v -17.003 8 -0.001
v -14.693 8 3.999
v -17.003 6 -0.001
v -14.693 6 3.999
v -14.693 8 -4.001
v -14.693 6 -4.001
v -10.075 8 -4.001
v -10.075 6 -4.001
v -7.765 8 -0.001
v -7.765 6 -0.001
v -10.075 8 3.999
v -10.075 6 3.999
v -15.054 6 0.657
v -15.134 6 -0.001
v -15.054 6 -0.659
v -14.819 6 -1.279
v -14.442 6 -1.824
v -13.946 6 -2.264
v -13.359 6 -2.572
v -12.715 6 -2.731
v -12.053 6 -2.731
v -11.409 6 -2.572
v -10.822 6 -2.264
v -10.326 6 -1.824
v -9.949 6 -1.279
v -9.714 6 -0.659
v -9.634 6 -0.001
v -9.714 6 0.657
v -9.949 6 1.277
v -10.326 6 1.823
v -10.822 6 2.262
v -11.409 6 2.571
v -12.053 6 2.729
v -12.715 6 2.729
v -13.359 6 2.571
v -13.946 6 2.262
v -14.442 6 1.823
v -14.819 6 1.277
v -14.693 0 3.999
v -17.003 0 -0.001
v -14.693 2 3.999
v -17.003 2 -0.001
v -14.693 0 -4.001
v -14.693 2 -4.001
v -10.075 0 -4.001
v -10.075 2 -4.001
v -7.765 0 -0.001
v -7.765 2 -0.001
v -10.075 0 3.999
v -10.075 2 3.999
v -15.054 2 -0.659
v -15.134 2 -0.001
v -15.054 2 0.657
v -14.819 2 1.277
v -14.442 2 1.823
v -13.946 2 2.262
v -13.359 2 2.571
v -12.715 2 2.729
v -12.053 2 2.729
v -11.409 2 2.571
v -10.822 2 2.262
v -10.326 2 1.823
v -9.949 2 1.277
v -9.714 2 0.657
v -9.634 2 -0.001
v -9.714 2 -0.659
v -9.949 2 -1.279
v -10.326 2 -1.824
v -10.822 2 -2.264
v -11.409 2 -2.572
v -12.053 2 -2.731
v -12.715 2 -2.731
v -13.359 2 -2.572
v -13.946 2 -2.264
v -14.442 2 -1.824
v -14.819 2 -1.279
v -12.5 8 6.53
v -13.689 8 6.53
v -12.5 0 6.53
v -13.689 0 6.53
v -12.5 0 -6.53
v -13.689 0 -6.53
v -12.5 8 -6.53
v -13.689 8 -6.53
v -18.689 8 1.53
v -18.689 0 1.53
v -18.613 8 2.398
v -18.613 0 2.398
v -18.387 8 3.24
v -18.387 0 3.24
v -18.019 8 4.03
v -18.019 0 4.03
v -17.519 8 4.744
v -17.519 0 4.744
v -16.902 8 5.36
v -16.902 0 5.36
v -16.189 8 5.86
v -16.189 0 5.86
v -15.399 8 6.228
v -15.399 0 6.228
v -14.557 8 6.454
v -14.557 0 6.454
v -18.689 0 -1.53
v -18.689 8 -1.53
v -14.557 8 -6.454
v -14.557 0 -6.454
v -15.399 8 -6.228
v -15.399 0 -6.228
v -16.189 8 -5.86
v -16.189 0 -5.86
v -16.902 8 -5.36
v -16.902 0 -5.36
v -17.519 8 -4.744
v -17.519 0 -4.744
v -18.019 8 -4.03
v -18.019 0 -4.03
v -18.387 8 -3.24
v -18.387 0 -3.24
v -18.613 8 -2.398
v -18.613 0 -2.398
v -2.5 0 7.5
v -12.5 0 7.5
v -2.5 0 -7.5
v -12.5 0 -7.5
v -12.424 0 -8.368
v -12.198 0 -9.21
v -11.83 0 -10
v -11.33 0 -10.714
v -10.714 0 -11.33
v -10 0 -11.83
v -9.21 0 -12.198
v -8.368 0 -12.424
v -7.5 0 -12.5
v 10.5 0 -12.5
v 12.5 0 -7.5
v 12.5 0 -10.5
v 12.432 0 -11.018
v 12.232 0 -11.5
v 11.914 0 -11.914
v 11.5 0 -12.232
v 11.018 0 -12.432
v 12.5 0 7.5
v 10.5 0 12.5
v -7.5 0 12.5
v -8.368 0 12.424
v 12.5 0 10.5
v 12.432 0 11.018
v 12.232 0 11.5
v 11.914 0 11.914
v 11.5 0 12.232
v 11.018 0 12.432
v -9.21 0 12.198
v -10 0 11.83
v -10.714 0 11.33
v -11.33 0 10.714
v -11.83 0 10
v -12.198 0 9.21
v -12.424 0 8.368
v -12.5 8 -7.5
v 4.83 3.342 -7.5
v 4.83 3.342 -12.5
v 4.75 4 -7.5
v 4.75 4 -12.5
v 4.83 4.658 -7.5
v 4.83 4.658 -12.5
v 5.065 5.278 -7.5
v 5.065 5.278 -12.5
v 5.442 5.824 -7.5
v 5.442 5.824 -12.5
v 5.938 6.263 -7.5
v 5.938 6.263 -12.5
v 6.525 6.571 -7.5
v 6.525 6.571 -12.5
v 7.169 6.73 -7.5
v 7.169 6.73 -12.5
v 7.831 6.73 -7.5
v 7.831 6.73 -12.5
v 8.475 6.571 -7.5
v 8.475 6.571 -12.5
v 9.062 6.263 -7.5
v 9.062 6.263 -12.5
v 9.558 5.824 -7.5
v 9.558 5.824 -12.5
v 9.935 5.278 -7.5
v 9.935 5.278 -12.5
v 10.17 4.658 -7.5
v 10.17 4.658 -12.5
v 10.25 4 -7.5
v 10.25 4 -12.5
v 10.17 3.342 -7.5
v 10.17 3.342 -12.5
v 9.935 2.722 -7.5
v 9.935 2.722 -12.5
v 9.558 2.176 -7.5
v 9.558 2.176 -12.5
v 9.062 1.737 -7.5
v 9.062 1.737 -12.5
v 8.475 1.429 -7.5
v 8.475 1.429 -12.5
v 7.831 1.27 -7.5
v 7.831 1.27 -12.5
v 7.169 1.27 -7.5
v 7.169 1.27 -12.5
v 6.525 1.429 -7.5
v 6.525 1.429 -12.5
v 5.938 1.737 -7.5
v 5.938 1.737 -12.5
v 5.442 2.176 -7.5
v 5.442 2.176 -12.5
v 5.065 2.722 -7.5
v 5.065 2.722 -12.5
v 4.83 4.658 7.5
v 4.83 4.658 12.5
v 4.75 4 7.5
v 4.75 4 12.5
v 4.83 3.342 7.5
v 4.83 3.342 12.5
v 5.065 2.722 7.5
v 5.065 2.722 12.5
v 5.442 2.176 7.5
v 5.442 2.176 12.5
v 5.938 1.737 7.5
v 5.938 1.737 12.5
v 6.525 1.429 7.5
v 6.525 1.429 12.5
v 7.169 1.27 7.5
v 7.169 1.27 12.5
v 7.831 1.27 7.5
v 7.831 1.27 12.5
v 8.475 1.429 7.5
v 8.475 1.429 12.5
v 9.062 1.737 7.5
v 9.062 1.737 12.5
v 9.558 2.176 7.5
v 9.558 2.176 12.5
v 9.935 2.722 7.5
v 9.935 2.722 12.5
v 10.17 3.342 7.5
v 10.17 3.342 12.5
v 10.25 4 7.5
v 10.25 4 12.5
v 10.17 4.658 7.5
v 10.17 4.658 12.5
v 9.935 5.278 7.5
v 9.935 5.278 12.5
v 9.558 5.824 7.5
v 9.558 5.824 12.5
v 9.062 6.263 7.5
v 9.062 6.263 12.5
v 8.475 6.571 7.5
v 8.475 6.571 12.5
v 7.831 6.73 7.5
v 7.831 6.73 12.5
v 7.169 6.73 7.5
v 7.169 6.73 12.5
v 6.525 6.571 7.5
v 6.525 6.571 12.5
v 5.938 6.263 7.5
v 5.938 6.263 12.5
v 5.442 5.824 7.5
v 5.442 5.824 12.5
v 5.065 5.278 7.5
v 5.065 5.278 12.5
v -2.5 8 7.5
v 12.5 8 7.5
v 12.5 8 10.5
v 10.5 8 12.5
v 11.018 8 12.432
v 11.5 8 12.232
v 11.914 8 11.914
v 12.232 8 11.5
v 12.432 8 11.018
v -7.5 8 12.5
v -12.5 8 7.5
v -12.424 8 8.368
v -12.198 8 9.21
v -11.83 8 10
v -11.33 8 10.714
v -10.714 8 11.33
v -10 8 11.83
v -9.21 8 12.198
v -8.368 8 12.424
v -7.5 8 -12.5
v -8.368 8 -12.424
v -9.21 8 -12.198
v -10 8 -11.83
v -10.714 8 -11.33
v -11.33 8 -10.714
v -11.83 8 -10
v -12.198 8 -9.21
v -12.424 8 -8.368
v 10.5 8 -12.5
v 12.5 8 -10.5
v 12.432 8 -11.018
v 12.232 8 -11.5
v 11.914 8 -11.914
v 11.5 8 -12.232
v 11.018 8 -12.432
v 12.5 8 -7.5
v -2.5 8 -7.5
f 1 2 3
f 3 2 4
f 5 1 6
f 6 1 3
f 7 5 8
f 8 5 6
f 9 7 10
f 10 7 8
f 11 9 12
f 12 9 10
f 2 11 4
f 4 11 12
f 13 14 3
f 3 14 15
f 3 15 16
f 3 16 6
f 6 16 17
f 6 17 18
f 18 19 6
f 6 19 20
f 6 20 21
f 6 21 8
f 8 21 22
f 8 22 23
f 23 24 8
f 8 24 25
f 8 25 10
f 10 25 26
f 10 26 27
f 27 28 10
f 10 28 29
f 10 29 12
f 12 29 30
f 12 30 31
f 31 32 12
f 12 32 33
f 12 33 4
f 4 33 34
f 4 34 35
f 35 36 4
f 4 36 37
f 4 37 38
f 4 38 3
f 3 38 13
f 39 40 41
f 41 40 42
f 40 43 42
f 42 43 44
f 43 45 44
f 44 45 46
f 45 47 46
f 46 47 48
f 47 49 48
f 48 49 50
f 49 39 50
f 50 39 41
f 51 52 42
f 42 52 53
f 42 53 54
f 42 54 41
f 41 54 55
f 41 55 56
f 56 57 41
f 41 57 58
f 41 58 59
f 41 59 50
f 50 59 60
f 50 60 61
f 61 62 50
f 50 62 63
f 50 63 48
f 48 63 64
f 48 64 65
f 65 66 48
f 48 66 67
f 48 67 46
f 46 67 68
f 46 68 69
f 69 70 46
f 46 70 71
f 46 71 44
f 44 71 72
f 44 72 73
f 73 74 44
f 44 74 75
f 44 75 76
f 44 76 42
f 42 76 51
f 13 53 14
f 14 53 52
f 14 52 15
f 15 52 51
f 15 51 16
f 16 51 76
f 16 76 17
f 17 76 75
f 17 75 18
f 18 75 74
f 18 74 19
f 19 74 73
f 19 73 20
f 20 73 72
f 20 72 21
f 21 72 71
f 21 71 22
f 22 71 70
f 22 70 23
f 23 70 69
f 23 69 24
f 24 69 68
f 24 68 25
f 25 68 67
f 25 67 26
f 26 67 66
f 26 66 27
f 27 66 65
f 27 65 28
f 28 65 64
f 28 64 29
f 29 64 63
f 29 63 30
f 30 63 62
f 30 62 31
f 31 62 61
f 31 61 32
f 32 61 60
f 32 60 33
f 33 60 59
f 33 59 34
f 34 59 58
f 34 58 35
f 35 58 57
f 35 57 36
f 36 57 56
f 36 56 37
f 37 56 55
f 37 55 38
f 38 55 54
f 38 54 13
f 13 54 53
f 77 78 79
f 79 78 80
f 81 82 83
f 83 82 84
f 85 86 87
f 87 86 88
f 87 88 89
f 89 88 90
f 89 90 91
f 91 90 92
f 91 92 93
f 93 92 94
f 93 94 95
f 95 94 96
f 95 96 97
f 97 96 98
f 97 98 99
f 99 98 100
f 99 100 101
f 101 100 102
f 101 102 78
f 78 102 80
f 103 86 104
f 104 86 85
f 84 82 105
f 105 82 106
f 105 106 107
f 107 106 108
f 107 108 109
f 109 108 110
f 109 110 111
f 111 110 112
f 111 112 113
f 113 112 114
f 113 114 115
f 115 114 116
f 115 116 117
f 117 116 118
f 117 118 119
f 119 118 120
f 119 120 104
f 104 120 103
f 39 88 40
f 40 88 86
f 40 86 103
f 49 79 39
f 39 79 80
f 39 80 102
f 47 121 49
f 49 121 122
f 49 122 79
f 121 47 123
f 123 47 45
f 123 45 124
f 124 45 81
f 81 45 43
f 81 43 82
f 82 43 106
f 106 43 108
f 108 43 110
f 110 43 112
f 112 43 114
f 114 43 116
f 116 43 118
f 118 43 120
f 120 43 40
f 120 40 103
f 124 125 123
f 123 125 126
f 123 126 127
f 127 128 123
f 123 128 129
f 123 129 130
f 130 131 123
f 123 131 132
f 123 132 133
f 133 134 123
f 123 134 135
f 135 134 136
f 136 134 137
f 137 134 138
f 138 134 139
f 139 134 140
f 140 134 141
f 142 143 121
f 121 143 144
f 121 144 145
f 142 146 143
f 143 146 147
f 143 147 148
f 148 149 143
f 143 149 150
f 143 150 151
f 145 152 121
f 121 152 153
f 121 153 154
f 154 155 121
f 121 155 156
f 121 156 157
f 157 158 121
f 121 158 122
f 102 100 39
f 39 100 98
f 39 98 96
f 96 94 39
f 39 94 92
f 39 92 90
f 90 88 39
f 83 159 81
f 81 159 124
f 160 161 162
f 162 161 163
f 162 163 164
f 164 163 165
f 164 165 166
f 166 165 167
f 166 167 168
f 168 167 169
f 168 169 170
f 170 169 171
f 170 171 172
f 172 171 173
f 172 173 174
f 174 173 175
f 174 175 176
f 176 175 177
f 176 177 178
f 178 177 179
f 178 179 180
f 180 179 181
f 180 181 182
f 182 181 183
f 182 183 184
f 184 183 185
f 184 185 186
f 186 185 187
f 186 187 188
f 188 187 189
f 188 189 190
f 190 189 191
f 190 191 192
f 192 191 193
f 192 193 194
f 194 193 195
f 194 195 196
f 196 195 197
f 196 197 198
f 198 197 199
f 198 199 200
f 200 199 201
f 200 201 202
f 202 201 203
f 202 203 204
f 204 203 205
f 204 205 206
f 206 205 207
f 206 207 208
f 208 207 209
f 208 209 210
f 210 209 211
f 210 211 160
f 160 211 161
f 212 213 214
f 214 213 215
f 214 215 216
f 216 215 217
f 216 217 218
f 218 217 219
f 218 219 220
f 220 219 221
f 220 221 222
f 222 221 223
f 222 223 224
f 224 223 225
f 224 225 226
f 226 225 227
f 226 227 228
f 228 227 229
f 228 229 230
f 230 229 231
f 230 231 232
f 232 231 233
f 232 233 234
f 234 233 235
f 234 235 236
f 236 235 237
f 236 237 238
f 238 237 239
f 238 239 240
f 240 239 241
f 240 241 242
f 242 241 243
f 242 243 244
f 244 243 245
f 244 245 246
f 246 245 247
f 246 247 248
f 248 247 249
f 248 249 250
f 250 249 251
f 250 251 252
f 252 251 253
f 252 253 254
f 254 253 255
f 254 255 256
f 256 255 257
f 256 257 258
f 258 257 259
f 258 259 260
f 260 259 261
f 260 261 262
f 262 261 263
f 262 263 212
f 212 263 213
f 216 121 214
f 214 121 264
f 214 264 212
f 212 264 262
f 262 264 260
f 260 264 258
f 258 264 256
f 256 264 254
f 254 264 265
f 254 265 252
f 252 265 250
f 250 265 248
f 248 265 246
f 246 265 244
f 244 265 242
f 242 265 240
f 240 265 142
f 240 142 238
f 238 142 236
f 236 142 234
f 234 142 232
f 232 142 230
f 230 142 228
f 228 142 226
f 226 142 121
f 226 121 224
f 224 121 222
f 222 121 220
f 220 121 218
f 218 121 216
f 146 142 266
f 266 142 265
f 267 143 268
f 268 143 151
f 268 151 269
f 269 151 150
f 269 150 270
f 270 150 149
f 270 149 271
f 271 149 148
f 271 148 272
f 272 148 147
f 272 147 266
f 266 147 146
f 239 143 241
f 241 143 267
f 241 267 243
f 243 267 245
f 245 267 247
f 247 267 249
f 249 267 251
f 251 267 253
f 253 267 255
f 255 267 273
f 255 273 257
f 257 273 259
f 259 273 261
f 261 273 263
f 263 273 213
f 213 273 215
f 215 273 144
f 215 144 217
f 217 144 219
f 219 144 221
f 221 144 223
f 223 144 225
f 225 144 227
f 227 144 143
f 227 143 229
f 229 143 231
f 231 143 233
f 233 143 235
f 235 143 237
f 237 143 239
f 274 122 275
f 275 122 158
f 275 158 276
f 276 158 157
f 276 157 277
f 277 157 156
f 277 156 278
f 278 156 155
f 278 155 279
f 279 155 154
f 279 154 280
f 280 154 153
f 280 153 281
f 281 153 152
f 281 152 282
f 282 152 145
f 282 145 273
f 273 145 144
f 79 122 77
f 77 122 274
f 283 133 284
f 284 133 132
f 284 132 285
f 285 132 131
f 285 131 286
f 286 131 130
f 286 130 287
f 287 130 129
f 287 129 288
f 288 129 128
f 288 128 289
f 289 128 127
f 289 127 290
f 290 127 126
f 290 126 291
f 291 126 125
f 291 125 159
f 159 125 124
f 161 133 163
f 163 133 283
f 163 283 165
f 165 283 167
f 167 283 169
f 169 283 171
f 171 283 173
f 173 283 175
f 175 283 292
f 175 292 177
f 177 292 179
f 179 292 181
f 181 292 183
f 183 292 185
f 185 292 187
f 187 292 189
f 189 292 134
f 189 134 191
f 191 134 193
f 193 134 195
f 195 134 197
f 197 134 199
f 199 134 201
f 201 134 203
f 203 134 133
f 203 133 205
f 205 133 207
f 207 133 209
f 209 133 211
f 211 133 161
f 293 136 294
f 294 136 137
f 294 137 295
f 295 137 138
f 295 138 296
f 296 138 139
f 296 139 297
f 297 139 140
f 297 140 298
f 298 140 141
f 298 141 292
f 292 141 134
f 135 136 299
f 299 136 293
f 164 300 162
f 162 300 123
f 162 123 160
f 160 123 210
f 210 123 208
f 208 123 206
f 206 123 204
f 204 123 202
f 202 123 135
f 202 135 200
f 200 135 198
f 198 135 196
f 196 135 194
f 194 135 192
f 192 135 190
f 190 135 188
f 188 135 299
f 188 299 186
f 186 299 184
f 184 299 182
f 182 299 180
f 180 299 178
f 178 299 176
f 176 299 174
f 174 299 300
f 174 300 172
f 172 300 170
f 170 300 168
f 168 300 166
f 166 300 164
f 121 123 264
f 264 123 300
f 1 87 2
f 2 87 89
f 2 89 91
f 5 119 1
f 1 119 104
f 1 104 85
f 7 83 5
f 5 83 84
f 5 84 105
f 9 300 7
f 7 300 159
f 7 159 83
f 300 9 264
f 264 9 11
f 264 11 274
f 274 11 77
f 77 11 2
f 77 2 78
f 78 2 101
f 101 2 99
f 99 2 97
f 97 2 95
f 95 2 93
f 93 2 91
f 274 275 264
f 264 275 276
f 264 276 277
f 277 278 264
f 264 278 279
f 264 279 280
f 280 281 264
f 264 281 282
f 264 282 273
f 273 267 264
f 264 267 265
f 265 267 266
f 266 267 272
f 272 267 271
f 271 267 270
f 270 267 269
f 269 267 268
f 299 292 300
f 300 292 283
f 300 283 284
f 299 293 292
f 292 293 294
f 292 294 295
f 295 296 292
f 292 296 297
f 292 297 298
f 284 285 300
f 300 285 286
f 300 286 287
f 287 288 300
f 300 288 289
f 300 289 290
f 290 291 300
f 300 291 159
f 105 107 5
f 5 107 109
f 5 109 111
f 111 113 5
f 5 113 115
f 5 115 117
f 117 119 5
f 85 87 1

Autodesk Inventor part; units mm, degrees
ref_plane "YZ Plane" through (0, 0, 0) normal (1, 0, 0) x (0, 1, 0)
ref_plane "XZ Plane" through (0, 0, 0) normal (0, 1, 0) x (-1, 0, 0)
ref_plane "XY Plane" through (0, 0, 0) normal (0, 0, 1) x (1, 0, 0)
sketch "Sketch1" plane through (0, 0, 0) normal (0, 1, 0) x (-1, 0, 0)
  line L0 (-10.5, 12.5) -> (7.5, 12.5)
  line L1 (12.5, 7.5) -> (12.5, -7.5)
  line L2 (7.5, -12.5) -> (-10.5, -12.5)
  line L3 (-12.5, 12.5) -> (12.5, -12.5) construction
  line L4 (12.5, 12.5) -> (-12.5, -12.5) construction
  line L5 (2.5, -7.5) -> (-12.5, -7.5)
  line L6 (-12.5, 7.5) -> (2.5, 7.5)
  line L7 (2.5, 7.5) -> (2.5, -7.5)
  line L8 (2.5, -7.5) -> (-8.1051, -8.1051) construction
  line L9 (1.2546, -1.2546) -> (2.5, 7.5) construction
  line L10 (-12.5, -10.5) -> (-12.5, -7.5)
  line L11 (-12.5, 7.5) -> (-12.5, 10.5)
  arc A0 (12.5, 7.5) -> (7.5, 12.5) centre (7.5, 7.5) ccw
  arc A1 (7.5, -12.5) -> (12.5, -7.5) centre (7.5, -7.5) ccw
  arc A2 (-10.5, 12.5) -> (-12.5, 10.5) centre (-10.5, 10.5) ccw
  arc A3 (-12.5, -10.5) -> (-10.5, -12.5) centre (-10.5, -10.5) ccw
  point P0 (0, 0)
  point P1 (-12.5, -9)
  dimension "d0" = 5
  dimension "d1" = 2
  dimension "d2" = 15
  dimension "d3" = 25
  dimension "d7" = 15
  dimension "d8" = 25
extrude "Extrusion1" add sketch "Sketch1" along normal blind 8
sketch "Sketch2" plane through (-7.5, 0, 12.5) normal (0, 0, 1) x (1, 0, 0)
  circle A0 centre (15, 4) radius 2.75
  line L0 (0, 8) -> (18, 8) projected
  line L1 (18, 0) -> (18, 8) projected
  point P0 (7.5, 0)
  dimension "d9" = 5.5
  dimension "d10" = 4
  dimension "d26" = 3
extrude "Extrusion2" cut sketch "Sketch2" against normal blind 44.5
sketch "Sketch4" plane through (0, 0, 0) normal (0, -1, 0) x (1, 0, 0)
  line L0 (-13.6886, 6.5298) -> (-6.3114, 6.5298)
  line L1 (-6.3114, 6.5298) -> (-6.3114, -6.5298)
  line L2 (-6.3114, -6.5298) -> (-13.6886, -6.5298)
  line L3 (-18.6886, -1.5298) -> (-18.6886, 1.5298)
  line L4 (-12.5, -7.5) -> (-12.5, 7.5) projected
  line L5 (-18.6886, 6.5298) -> (-6.3114, -6.5298) construction
  line L6 (-6.3114, 6.5298) -> (-18.6886, -6.5298) construction
  arc A0 (-18.6886, -1.5298) -> (-13.6886, -6.5298) centre (-13.6886, -1.5298) ccw
  arc A1 (-13.6886, 6.5298) -> (-18.6886, 1.5298) centre (-13.6886, 1.5298) ccw
  point P0 (0, 0)
  point P1 (-12.5, 0)
  dimension "d13" = 5
extrude "Extrusion3" add sketch "Sketch4" against normal blind 8
sketch "Sketch5" plane through (0, 0, 0) normal (0, -1, 0) x (1, 0, 0)
  line L0 (-10.0746, -4.0008) -> (-14.6934, -4.0008)
  line L1 (-14.6934, -4.0008) -> (-17.0028, -0.0008)
  line L2 (-17.0028, -0.0008) -> (-14.6934, 3.9992)
  line L3 (-14.6934, 3.9992) -> (-10.0746, 3.9992)
  line L4 (-10.0746, 3.9992) -> (-7.7652, -0.0008)
  line L5 (-7.7652, -0.0008) -> (-10.0746, -4.0008)
  line L6 (-7.5, 12.5) -> (10.5, 12.5) projected
  circle A0 centre (-12.384, -0.0008) radius 2.75
  point P0 (0, 0)
  dimension "d16" = 8
  dimension "d17" = 5.5
extrude "Extrusion4" cut sketch "Sketch5" against normal blind 8 contours A0
sketch "Sketch7" plane through (0, 0, 0) normal (0, -1, 0) x (1, 0, 0)
  circle A0 centre (-12.384, -0.0008) radius 2.75 projected
  line L0 (-7.7652, -0.0008) -> (-10.0746, -4.0008)
  line L1 (-10.0746, -4.0008) -> (-14.6934, -4.0008)
  line L2 (-14.6934, -4.0008) -> (-17.0028, -0.0008)
  line L3 (-17.0028, -0.0008) -> (-14.6934, 3.9992)
  line L4 (-14.6934, 3.9992) -> (-10.0746, 3.9992)
  line L5 (-10.0746, 3.9992) -> (-7.7652, -0.0008)
  line L6 (-7.5, 12.5) -> (10.5, 12.5) projected
  point P0 (0, 0)
  point P1 (-12.384, 3.9992)
  dimension "d22" = 8
extrude "Extrusion5" cut sketch "Sketch7" against normal blind 2 contours A0 | L0 L1 L2 L3 L4 L5
ref_plane "Work Plane1" through (0, 4, 0) normal (0, -1, 0) x (1, 0, 0)
mirror "Mirror1" about plane through (0, 4, 0) normal (0, -1, 0) of "Extrusion5"
properties part number "J1"
